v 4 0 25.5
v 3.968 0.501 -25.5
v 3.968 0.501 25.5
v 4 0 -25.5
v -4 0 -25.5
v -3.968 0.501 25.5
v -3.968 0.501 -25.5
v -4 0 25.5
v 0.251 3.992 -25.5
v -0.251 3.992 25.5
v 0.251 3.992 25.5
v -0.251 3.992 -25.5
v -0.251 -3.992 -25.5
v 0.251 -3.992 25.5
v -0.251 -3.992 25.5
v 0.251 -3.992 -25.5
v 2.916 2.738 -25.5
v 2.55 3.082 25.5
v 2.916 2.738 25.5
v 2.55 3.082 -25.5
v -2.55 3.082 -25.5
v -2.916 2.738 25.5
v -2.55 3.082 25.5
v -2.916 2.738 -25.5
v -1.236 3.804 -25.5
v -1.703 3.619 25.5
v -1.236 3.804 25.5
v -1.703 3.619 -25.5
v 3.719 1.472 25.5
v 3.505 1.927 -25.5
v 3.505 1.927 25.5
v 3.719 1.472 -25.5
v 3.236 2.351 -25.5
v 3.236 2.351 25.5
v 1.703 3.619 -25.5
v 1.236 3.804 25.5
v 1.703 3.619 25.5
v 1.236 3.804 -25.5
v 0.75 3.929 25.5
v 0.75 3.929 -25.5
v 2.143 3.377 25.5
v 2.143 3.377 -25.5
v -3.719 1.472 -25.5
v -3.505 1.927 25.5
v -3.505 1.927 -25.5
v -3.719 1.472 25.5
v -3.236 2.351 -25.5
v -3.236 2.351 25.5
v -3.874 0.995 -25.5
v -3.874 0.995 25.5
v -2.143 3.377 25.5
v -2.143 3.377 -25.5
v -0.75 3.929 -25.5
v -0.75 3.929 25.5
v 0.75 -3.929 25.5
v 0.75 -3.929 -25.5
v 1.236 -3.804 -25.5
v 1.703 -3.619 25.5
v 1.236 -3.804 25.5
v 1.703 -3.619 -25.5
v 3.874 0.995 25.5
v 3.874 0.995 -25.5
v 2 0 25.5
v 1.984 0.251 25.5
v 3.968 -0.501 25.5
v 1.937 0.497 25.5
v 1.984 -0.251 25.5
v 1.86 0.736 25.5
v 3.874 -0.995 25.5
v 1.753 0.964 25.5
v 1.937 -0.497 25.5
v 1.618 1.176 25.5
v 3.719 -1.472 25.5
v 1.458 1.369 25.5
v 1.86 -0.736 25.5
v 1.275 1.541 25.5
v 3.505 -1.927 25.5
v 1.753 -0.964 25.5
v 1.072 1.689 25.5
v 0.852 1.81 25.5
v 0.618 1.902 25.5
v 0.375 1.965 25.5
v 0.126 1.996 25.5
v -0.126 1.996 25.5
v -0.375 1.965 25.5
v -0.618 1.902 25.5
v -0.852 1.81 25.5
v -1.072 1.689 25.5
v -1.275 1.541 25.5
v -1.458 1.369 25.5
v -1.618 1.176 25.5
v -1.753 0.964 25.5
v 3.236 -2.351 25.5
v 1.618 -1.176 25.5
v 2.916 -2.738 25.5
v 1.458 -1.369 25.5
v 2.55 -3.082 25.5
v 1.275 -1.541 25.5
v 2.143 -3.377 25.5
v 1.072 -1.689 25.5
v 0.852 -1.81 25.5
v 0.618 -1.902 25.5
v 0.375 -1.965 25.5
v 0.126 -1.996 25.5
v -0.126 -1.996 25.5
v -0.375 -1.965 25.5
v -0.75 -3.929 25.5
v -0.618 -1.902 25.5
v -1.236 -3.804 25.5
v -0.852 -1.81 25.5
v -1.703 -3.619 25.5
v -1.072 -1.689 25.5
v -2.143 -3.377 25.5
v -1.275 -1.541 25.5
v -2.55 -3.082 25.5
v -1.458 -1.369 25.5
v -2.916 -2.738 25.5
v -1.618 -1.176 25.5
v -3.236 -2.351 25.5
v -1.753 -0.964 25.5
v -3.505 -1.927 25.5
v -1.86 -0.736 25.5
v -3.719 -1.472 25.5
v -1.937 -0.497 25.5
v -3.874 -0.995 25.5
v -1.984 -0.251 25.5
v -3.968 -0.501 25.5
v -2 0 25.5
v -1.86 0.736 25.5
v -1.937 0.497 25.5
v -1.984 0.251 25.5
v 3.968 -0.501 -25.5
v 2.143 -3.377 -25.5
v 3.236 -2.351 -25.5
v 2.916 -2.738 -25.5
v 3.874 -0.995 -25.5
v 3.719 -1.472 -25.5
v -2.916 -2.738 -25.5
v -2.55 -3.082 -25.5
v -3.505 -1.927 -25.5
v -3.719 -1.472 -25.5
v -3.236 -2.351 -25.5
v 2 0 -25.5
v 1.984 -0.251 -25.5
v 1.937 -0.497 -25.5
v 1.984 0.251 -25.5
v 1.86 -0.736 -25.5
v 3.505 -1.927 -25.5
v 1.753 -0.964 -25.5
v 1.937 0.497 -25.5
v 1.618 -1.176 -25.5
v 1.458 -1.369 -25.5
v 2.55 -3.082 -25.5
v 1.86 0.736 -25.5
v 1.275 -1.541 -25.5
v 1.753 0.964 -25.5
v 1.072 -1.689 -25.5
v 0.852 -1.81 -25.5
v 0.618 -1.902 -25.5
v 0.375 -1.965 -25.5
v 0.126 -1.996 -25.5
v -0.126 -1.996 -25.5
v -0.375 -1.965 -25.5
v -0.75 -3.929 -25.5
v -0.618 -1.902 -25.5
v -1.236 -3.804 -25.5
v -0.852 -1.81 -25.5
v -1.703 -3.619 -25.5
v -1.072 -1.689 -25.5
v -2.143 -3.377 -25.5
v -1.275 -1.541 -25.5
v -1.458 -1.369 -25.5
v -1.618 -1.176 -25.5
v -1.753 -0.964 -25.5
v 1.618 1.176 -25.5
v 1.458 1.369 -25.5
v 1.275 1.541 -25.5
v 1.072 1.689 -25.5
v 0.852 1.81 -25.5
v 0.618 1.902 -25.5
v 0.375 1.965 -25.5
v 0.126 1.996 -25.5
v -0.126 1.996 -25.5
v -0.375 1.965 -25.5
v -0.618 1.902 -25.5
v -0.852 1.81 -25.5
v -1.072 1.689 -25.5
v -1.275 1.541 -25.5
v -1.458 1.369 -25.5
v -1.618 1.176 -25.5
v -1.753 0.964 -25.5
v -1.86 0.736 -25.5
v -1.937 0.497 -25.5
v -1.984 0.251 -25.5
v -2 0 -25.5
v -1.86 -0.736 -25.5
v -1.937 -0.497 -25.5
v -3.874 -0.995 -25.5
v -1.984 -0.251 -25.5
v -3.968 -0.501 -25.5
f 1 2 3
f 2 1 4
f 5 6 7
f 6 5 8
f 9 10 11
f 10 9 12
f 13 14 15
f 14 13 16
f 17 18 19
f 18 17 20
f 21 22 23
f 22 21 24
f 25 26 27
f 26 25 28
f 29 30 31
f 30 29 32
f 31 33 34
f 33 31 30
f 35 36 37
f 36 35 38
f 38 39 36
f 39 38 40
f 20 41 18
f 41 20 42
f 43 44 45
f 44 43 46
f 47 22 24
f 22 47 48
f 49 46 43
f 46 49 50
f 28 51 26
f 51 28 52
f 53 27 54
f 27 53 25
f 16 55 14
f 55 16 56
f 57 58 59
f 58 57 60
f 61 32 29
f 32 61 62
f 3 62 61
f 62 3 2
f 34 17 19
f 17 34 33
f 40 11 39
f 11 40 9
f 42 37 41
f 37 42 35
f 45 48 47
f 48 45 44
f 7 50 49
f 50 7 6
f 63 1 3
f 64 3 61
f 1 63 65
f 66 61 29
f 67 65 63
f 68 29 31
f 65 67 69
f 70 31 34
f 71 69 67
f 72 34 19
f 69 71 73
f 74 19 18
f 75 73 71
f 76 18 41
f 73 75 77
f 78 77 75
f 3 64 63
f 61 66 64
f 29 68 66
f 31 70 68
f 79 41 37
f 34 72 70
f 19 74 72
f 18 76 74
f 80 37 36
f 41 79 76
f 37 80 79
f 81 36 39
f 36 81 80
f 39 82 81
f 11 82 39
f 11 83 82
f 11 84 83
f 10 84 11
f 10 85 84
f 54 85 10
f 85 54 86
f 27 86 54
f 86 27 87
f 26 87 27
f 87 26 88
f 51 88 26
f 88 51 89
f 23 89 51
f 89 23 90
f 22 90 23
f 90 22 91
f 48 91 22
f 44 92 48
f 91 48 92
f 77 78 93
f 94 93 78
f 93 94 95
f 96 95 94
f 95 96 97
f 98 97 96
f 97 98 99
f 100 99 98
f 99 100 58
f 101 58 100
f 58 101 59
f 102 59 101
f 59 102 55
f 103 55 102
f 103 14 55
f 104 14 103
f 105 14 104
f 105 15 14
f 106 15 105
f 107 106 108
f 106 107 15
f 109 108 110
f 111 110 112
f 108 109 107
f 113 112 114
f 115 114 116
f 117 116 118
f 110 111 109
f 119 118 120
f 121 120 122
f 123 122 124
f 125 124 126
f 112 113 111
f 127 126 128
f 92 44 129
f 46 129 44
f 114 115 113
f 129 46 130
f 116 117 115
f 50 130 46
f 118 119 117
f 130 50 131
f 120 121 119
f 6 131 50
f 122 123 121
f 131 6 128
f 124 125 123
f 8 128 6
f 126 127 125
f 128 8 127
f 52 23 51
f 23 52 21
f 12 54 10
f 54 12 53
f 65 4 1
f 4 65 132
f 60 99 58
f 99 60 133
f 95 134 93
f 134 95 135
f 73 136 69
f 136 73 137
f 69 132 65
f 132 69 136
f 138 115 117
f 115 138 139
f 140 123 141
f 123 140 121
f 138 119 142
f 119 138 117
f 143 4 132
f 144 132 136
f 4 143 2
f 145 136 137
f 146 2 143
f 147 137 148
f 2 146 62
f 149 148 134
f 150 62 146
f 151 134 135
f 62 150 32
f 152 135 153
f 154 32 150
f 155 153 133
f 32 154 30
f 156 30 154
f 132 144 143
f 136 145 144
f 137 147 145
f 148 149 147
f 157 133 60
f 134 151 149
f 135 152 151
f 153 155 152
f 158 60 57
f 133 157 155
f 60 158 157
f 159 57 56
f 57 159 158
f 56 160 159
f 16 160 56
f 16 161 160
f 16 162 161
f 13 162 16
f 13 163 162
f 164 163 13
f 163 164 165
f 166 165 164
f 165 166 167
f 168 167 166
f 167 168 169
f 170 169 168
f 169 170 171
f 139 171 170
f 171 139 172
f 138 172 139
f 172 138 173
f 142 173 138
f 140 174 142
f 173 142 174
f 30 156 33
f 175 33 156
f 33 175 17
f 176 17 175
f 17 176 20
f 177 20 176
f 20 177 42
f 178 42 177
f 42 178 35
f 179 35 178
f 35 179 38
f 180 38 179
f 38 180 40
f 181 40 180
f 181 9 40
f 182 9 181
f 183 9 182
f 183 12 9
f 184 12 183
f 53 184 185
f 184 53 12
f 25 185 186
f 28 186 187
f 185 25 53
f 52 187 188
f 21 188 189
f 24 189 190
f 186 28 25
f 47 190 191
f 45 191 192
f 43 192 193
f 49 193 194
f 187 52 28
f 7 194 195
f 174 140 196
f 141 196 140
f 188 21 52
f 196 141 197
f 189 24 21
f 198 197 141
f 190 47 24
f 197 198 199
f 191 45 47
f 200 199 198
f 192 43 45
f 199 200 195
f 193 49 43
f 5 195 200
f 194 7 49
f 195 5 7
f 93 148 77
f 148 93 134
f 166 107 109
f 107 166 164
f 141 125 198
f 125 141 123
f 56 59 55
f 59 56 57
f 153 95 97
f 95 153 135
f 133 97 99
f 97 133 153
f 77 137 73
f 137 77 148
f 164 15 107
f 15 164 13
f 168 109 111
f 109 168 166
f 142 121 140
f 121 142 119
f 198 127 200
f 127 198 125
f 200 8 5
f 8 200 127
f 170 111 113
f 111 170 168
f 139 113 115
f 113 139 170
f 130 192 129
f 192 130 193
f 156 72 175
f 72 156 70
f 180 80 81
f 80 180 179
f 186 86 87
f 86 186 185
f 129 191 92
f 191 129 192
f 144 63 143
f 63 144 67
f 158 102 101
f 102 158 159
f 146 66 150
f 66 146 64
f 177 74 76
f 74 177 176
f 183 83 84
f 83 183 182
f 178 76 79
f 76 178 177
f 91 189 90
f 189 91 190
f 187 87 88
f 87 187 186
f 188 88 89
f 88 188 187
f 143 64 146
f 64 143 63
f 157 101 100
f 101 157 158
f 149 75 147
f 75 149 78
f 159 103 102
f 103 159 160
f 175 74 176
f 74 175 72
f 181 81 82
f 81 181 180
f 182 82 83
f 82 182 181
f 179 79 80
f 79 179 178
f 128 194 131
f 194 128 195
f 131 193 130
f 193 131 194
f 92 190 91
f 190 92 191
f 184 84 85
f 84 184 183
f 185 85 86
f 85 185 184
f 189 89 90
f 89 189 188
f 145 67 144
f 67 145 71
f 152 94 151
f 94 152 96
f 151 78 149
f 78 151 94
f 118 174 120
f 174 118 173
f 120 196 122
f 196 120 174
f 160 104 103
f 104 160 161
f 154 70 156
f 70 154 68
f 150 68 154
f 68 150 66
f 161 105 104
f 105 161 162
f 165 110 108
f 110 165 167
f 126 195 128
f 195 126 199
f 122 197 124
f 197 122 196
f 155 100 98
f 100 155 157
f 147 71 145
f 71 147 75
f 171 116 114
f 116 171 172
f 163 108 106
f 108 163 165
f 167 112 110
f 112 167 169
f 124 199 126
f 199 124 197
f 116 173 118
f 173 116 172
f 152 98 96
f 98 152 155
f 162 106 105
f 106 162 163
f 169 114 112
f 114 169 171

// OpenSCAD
$fn = 50;


difference() {
	union() {
		translate(v = [0, 0, -25.5000000000]) {
			cylinder(h = 51, r = 4.0000000000);
		}
	}
	union() {
		translate(v = [0, 0, -100.0000000000]) {
			cylinder(h = 200, r = 2);
		}
	}
}
